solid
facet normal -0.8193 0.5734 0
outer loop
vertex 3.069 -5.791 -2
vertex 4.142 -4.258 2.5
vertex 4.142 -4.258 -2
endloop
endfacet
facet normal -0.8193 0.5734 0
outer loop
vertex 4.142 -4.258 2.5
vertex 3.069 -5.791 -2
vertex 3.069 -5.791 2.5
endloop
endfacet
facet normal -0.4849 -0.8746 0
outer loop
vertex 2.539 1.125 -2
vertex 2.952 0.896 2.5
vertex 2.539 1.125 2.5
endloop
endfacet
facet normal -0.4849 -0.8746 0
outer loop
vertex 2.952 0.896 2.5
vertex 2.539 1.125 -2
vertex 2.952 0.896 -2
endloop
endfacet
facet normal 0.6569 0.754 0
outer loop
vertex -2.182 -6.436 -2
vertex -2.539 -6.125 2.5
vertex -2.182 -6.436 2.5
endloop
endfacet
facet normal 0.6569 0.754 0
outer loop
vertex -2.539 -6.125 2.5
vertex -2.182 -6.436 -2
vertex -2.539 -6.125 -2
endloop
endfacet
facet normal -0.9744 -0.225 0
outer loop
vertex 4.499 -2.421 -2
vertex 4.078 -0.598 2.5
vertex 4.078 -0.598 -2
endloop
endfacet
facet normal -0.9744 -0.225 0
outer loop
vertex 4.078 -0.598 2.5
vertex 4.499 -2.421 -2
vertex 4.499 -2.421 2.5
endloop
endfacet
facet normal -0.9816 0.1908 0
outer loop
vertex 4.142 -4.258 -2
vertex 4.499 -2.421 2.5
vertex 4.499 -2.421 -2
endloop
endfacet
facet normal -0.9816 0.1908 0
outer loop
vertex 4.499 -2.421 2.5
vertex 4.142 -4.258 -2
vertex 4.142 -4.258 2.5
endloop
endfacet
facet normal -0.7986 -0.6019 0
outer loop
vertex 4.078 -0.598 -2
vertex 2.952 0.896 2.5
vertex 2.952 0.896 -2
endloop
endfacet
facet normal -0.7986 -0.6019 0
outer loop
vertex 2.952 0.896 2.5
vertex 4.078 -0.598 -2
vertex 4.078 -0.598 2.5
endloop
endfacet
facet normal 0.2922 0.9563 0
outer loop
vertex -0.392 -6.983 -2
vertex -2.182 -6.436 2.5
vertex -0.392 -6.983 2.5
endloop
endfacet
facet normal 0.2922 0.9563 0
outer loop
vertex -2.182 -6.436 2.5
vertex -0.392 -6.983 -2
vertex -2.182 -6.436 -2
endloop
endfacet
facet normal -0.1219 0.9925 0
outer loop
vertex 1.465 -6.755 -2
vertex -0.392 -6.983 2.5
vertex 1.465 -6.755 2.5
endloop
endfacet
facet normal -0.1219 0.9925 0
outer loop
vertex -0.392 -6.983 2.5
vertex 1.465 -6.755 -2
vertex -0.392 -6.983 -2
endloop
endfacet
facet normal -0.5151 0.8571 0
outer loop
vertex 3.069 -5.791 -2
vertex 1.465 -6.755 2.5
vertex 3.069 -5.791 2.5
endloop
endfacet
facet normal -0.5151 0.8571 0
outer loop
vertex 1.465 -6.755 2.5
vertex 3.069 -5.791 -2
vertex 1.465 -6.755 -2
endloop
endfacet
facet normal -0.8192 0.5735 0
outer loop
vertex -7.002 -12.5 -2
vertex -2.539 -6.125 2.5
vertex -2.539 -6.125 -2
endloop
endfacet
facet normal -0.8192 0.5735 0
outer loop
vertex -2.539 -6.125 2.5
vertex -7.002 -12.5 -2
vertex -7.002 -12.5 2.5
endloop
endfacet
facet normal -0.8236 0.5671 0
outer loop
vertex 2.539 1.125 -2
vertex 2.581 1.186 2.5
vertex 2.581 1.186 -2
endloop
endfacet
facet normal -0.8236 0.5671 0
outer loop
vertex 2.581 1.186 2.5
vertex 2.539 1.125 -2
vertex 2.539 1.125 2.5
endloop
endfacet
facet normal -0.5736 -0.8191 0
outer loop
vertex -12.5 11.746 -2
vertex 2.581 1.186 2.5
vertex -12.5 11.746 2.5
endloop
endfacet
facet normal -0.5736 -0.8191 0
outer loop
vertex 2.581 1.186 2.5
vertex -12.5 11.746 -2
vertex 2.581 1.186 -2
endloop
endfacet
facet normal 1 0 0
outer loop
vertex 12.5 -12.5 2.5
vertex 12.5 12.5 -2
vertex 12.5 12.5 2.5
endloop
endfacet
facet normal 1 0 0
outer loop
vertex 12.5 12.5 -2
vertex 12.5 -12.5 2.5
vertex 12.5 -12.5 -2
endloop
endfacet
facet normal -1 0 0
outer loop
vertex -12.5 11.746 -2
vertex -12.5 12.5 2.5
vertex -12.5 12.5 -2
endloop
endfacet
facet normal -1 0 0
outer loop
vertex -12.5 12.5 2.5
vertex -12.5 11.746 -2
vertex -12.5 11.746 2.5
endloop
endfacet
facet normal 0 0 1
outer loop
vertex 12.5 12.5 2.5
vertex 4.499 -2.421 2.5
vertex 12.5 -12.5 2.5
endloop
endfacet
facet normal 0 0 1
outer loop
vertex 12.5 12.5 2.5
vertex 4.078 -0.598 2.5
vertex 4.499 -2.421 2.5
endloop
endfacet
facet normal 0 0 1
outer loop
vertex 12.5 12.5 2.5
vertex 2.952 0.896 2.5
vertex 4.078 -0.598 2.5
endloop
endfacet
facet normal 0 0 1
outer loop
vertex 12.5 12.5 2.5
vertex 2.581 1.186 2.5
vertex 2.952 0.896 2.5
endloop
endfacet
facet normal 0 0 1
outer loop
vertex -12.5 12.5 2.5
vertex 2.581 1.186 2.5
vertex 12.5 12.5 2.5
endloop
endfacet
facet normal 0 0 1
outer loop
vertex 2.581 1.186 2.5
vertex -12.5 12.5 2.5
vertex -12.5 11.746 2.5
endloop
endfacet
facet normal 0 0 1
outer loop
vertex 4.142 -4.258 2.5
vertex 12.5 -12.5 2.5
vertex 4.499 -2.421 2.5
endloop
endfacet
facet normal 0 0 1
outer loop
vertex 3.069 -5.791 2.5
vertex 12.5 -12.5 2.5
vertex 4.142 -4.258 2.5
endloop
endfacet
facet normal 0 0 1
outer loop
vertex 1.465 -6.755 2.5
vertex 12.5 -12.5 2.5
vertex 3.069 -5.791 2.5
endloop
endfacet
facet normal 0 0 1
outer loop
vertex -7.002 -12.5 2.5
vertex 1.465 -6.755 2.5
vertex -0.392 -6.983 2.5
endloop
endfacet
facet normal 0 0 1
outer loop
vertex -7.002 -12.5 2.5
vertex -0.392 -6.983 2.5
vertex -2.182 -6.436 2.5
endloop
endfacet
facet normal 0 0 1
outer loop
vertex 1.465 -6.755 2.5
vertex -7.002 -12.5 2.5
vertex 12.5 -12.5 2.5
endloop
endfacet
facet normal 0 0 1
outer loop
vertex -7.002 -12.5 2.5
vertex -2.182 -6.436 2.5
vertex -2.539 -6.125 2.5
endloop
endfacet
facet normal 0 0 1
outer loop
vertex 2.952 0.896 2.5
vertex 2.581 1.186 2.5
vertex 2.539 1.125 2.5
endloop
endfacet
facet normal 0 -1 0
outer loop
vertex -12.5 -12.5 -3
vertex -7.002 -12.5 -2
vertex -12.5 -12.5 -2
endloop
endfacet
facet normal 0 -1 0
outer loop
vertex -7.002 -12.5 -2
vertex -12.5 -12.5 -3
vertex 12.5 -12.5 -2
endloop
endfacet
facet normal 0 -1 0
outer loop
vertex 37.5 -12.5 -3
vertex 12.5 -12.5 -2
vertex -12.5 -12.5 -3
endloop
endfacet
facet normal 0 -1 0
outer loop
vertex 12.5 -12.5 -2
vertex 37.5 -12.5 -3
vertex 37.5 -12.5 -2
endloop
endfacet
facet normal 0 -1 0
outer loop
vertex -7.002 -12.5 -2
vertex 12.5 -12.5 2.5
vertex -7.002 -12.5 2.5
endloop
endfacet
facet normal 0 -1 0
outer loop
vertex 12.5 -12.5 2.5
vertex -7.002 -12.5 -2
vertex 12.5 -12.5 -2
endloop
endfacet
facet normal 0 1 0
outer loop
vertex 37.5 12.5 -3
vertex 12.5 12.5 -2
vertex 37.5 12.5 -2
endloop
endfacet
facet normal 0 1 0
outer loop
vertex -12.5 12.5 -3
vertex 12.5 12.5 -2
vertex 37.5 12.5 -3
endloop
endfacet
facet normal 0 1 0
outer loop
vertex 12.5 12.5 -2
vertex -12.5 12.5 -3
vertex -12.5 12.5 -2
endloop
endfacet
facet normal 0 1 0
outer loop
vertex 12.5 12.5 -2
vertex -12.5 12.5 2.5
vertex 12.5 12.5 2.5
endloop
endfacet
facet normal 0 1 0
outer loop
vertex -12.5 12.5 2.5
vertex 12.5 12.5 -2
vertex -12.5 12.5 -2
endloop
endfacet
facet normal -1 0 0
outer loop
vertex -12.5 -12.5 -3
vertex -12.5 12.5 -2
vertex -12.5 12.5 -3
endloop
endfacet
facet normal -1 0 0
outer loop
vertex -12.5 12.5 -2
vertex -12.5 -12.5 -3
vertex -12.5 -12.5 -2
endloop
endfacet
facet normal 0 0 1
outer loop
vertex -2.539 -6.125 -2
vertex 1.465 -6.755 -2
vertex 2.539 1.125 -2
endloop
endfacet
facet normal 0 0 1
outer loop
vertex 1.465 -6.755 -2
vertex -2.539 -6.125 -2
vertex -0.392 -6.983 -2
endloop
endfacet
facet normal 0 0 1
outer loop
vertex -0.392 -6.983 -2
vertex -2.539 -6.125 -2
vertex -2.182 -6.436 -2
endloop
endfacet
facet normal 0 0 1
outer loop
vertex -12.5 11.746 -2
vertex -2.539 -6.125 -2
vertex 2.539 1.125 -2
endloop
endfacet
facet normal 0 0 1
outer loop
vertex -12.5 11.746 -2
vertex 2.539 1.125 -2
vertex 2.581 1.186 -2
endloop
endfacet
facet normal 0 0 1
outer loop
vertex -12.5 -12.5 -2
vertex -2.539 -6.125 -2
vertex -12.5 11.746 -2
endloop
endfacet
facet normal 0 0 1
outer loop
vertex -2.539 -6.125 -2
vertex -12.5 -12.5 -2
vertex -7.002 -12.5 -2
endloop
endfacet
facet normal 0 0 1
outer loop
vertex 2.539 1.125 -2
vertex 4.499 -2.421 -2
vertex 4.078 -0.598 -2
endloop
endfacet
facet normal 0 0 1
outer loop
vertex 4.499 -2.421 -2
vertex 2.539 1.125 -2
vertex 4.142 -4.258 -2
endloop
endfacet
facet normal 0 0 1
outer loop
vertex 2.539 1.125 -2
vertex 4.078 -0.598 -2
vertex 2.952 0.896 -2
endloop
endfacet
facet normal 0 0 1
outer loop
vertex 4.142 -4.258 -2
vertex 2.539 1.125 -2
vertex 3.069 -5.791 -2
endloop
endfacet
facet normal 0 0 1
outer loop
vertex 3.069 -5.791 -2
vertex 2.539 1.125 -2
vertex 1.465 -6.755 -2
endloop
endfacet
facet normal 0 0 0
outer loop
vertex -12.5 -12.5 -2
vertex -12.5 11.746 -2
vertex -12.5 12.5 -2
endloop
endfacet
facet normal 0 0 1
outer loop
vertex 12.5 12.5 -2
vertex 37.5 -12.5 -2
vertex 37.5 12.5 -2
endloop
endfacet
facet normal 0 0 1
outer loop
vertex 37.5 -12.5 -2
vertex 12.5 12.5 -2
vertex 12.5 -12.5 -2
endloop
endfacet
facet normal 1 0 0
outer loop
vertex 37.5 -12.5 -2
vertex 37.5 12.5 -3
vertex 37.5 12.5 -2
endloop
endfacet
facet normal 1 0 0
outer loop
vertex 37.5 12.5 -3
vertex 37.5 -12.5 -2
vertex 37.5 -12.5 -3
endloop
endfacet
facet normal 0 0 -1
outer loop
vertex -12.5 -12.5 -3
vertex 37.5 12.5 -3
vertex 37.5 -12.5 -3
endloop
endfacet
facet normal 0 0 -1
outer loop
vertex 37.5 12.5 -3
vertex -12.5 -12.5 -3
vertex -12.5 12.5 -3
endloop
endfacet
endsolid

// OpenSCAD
//Halter rechts
//etwas dünner gemacht als Halter links 
//d.h. Höhe Stabhalter= 5mm (statt 8mm)
// Höhe Basisplatte = 1mm  (statt 1.2mm)
//reduziert Stabilität Basisplatte... (leicht biegbar)

//für minkowski-summe zum abrunden des fertigen körpres
hm = 0; //höhe zylinder
rm = 0; //radius zylinder

//basisvergrößerung
//g = 40
g = 50;
h = 25;
i = 1;

//Basiskörper (Quader)
a = 25-2*rm;
b = 25-2*rm;
c = 5-2*hm;


//Quader zum Ausschneiden aus dem Basiskörper
d = 25+2*rm;
e = 20+2*rm;
f = c + 0.1;// sicherstellen, dass der Ausschnitt wirklich sichtbar größer ist
//der Quader zum Ausschneiden kriegt an dem einen Ende einen Zylinder, in den die Stange des Rollos einhakt.
hc = c + 0.1; // sicherstellen, dass der Ausschnitt wirklich sichtbar größer ist
dc = 9+2*rm; //durchmesser stab rollo = 8



$fn=15;
minkowski(){
    union(){
        //die Basisplatte (Vergrößerung zum Kleben)
        //für den Halter rechts in +x verschoben
        translate([+g/2-a/2,0,-c/2]) cube([g,h,i],center = true);
        //der eigentliche Halter für den Stab
        //für den Halter rechts um 180° um Y rotiert
        rotate([0,180,0])difference(){
            //Basisköper
            cube([a,b,c], center = true);
            //den cube für den schlitz so verschieben, dass der durch den Zylinder ein abgerundetes Ende erhält,
            //dann mit dem zylinder vereinigen
            //und das ganze ding 35 grad rotieren um die z-achse
            translate([0,-b/2+e/2,0])rotate(a=35, v=[0,0,1])union(){
                cylinder(hc, dc/2,dc/2, center=true);
                translate([d/2,-e/2+dc/2,0])cube([d,e,f], center = true);
            }    
        }
    }
    cylinder(r=rm,h=hm);
}
